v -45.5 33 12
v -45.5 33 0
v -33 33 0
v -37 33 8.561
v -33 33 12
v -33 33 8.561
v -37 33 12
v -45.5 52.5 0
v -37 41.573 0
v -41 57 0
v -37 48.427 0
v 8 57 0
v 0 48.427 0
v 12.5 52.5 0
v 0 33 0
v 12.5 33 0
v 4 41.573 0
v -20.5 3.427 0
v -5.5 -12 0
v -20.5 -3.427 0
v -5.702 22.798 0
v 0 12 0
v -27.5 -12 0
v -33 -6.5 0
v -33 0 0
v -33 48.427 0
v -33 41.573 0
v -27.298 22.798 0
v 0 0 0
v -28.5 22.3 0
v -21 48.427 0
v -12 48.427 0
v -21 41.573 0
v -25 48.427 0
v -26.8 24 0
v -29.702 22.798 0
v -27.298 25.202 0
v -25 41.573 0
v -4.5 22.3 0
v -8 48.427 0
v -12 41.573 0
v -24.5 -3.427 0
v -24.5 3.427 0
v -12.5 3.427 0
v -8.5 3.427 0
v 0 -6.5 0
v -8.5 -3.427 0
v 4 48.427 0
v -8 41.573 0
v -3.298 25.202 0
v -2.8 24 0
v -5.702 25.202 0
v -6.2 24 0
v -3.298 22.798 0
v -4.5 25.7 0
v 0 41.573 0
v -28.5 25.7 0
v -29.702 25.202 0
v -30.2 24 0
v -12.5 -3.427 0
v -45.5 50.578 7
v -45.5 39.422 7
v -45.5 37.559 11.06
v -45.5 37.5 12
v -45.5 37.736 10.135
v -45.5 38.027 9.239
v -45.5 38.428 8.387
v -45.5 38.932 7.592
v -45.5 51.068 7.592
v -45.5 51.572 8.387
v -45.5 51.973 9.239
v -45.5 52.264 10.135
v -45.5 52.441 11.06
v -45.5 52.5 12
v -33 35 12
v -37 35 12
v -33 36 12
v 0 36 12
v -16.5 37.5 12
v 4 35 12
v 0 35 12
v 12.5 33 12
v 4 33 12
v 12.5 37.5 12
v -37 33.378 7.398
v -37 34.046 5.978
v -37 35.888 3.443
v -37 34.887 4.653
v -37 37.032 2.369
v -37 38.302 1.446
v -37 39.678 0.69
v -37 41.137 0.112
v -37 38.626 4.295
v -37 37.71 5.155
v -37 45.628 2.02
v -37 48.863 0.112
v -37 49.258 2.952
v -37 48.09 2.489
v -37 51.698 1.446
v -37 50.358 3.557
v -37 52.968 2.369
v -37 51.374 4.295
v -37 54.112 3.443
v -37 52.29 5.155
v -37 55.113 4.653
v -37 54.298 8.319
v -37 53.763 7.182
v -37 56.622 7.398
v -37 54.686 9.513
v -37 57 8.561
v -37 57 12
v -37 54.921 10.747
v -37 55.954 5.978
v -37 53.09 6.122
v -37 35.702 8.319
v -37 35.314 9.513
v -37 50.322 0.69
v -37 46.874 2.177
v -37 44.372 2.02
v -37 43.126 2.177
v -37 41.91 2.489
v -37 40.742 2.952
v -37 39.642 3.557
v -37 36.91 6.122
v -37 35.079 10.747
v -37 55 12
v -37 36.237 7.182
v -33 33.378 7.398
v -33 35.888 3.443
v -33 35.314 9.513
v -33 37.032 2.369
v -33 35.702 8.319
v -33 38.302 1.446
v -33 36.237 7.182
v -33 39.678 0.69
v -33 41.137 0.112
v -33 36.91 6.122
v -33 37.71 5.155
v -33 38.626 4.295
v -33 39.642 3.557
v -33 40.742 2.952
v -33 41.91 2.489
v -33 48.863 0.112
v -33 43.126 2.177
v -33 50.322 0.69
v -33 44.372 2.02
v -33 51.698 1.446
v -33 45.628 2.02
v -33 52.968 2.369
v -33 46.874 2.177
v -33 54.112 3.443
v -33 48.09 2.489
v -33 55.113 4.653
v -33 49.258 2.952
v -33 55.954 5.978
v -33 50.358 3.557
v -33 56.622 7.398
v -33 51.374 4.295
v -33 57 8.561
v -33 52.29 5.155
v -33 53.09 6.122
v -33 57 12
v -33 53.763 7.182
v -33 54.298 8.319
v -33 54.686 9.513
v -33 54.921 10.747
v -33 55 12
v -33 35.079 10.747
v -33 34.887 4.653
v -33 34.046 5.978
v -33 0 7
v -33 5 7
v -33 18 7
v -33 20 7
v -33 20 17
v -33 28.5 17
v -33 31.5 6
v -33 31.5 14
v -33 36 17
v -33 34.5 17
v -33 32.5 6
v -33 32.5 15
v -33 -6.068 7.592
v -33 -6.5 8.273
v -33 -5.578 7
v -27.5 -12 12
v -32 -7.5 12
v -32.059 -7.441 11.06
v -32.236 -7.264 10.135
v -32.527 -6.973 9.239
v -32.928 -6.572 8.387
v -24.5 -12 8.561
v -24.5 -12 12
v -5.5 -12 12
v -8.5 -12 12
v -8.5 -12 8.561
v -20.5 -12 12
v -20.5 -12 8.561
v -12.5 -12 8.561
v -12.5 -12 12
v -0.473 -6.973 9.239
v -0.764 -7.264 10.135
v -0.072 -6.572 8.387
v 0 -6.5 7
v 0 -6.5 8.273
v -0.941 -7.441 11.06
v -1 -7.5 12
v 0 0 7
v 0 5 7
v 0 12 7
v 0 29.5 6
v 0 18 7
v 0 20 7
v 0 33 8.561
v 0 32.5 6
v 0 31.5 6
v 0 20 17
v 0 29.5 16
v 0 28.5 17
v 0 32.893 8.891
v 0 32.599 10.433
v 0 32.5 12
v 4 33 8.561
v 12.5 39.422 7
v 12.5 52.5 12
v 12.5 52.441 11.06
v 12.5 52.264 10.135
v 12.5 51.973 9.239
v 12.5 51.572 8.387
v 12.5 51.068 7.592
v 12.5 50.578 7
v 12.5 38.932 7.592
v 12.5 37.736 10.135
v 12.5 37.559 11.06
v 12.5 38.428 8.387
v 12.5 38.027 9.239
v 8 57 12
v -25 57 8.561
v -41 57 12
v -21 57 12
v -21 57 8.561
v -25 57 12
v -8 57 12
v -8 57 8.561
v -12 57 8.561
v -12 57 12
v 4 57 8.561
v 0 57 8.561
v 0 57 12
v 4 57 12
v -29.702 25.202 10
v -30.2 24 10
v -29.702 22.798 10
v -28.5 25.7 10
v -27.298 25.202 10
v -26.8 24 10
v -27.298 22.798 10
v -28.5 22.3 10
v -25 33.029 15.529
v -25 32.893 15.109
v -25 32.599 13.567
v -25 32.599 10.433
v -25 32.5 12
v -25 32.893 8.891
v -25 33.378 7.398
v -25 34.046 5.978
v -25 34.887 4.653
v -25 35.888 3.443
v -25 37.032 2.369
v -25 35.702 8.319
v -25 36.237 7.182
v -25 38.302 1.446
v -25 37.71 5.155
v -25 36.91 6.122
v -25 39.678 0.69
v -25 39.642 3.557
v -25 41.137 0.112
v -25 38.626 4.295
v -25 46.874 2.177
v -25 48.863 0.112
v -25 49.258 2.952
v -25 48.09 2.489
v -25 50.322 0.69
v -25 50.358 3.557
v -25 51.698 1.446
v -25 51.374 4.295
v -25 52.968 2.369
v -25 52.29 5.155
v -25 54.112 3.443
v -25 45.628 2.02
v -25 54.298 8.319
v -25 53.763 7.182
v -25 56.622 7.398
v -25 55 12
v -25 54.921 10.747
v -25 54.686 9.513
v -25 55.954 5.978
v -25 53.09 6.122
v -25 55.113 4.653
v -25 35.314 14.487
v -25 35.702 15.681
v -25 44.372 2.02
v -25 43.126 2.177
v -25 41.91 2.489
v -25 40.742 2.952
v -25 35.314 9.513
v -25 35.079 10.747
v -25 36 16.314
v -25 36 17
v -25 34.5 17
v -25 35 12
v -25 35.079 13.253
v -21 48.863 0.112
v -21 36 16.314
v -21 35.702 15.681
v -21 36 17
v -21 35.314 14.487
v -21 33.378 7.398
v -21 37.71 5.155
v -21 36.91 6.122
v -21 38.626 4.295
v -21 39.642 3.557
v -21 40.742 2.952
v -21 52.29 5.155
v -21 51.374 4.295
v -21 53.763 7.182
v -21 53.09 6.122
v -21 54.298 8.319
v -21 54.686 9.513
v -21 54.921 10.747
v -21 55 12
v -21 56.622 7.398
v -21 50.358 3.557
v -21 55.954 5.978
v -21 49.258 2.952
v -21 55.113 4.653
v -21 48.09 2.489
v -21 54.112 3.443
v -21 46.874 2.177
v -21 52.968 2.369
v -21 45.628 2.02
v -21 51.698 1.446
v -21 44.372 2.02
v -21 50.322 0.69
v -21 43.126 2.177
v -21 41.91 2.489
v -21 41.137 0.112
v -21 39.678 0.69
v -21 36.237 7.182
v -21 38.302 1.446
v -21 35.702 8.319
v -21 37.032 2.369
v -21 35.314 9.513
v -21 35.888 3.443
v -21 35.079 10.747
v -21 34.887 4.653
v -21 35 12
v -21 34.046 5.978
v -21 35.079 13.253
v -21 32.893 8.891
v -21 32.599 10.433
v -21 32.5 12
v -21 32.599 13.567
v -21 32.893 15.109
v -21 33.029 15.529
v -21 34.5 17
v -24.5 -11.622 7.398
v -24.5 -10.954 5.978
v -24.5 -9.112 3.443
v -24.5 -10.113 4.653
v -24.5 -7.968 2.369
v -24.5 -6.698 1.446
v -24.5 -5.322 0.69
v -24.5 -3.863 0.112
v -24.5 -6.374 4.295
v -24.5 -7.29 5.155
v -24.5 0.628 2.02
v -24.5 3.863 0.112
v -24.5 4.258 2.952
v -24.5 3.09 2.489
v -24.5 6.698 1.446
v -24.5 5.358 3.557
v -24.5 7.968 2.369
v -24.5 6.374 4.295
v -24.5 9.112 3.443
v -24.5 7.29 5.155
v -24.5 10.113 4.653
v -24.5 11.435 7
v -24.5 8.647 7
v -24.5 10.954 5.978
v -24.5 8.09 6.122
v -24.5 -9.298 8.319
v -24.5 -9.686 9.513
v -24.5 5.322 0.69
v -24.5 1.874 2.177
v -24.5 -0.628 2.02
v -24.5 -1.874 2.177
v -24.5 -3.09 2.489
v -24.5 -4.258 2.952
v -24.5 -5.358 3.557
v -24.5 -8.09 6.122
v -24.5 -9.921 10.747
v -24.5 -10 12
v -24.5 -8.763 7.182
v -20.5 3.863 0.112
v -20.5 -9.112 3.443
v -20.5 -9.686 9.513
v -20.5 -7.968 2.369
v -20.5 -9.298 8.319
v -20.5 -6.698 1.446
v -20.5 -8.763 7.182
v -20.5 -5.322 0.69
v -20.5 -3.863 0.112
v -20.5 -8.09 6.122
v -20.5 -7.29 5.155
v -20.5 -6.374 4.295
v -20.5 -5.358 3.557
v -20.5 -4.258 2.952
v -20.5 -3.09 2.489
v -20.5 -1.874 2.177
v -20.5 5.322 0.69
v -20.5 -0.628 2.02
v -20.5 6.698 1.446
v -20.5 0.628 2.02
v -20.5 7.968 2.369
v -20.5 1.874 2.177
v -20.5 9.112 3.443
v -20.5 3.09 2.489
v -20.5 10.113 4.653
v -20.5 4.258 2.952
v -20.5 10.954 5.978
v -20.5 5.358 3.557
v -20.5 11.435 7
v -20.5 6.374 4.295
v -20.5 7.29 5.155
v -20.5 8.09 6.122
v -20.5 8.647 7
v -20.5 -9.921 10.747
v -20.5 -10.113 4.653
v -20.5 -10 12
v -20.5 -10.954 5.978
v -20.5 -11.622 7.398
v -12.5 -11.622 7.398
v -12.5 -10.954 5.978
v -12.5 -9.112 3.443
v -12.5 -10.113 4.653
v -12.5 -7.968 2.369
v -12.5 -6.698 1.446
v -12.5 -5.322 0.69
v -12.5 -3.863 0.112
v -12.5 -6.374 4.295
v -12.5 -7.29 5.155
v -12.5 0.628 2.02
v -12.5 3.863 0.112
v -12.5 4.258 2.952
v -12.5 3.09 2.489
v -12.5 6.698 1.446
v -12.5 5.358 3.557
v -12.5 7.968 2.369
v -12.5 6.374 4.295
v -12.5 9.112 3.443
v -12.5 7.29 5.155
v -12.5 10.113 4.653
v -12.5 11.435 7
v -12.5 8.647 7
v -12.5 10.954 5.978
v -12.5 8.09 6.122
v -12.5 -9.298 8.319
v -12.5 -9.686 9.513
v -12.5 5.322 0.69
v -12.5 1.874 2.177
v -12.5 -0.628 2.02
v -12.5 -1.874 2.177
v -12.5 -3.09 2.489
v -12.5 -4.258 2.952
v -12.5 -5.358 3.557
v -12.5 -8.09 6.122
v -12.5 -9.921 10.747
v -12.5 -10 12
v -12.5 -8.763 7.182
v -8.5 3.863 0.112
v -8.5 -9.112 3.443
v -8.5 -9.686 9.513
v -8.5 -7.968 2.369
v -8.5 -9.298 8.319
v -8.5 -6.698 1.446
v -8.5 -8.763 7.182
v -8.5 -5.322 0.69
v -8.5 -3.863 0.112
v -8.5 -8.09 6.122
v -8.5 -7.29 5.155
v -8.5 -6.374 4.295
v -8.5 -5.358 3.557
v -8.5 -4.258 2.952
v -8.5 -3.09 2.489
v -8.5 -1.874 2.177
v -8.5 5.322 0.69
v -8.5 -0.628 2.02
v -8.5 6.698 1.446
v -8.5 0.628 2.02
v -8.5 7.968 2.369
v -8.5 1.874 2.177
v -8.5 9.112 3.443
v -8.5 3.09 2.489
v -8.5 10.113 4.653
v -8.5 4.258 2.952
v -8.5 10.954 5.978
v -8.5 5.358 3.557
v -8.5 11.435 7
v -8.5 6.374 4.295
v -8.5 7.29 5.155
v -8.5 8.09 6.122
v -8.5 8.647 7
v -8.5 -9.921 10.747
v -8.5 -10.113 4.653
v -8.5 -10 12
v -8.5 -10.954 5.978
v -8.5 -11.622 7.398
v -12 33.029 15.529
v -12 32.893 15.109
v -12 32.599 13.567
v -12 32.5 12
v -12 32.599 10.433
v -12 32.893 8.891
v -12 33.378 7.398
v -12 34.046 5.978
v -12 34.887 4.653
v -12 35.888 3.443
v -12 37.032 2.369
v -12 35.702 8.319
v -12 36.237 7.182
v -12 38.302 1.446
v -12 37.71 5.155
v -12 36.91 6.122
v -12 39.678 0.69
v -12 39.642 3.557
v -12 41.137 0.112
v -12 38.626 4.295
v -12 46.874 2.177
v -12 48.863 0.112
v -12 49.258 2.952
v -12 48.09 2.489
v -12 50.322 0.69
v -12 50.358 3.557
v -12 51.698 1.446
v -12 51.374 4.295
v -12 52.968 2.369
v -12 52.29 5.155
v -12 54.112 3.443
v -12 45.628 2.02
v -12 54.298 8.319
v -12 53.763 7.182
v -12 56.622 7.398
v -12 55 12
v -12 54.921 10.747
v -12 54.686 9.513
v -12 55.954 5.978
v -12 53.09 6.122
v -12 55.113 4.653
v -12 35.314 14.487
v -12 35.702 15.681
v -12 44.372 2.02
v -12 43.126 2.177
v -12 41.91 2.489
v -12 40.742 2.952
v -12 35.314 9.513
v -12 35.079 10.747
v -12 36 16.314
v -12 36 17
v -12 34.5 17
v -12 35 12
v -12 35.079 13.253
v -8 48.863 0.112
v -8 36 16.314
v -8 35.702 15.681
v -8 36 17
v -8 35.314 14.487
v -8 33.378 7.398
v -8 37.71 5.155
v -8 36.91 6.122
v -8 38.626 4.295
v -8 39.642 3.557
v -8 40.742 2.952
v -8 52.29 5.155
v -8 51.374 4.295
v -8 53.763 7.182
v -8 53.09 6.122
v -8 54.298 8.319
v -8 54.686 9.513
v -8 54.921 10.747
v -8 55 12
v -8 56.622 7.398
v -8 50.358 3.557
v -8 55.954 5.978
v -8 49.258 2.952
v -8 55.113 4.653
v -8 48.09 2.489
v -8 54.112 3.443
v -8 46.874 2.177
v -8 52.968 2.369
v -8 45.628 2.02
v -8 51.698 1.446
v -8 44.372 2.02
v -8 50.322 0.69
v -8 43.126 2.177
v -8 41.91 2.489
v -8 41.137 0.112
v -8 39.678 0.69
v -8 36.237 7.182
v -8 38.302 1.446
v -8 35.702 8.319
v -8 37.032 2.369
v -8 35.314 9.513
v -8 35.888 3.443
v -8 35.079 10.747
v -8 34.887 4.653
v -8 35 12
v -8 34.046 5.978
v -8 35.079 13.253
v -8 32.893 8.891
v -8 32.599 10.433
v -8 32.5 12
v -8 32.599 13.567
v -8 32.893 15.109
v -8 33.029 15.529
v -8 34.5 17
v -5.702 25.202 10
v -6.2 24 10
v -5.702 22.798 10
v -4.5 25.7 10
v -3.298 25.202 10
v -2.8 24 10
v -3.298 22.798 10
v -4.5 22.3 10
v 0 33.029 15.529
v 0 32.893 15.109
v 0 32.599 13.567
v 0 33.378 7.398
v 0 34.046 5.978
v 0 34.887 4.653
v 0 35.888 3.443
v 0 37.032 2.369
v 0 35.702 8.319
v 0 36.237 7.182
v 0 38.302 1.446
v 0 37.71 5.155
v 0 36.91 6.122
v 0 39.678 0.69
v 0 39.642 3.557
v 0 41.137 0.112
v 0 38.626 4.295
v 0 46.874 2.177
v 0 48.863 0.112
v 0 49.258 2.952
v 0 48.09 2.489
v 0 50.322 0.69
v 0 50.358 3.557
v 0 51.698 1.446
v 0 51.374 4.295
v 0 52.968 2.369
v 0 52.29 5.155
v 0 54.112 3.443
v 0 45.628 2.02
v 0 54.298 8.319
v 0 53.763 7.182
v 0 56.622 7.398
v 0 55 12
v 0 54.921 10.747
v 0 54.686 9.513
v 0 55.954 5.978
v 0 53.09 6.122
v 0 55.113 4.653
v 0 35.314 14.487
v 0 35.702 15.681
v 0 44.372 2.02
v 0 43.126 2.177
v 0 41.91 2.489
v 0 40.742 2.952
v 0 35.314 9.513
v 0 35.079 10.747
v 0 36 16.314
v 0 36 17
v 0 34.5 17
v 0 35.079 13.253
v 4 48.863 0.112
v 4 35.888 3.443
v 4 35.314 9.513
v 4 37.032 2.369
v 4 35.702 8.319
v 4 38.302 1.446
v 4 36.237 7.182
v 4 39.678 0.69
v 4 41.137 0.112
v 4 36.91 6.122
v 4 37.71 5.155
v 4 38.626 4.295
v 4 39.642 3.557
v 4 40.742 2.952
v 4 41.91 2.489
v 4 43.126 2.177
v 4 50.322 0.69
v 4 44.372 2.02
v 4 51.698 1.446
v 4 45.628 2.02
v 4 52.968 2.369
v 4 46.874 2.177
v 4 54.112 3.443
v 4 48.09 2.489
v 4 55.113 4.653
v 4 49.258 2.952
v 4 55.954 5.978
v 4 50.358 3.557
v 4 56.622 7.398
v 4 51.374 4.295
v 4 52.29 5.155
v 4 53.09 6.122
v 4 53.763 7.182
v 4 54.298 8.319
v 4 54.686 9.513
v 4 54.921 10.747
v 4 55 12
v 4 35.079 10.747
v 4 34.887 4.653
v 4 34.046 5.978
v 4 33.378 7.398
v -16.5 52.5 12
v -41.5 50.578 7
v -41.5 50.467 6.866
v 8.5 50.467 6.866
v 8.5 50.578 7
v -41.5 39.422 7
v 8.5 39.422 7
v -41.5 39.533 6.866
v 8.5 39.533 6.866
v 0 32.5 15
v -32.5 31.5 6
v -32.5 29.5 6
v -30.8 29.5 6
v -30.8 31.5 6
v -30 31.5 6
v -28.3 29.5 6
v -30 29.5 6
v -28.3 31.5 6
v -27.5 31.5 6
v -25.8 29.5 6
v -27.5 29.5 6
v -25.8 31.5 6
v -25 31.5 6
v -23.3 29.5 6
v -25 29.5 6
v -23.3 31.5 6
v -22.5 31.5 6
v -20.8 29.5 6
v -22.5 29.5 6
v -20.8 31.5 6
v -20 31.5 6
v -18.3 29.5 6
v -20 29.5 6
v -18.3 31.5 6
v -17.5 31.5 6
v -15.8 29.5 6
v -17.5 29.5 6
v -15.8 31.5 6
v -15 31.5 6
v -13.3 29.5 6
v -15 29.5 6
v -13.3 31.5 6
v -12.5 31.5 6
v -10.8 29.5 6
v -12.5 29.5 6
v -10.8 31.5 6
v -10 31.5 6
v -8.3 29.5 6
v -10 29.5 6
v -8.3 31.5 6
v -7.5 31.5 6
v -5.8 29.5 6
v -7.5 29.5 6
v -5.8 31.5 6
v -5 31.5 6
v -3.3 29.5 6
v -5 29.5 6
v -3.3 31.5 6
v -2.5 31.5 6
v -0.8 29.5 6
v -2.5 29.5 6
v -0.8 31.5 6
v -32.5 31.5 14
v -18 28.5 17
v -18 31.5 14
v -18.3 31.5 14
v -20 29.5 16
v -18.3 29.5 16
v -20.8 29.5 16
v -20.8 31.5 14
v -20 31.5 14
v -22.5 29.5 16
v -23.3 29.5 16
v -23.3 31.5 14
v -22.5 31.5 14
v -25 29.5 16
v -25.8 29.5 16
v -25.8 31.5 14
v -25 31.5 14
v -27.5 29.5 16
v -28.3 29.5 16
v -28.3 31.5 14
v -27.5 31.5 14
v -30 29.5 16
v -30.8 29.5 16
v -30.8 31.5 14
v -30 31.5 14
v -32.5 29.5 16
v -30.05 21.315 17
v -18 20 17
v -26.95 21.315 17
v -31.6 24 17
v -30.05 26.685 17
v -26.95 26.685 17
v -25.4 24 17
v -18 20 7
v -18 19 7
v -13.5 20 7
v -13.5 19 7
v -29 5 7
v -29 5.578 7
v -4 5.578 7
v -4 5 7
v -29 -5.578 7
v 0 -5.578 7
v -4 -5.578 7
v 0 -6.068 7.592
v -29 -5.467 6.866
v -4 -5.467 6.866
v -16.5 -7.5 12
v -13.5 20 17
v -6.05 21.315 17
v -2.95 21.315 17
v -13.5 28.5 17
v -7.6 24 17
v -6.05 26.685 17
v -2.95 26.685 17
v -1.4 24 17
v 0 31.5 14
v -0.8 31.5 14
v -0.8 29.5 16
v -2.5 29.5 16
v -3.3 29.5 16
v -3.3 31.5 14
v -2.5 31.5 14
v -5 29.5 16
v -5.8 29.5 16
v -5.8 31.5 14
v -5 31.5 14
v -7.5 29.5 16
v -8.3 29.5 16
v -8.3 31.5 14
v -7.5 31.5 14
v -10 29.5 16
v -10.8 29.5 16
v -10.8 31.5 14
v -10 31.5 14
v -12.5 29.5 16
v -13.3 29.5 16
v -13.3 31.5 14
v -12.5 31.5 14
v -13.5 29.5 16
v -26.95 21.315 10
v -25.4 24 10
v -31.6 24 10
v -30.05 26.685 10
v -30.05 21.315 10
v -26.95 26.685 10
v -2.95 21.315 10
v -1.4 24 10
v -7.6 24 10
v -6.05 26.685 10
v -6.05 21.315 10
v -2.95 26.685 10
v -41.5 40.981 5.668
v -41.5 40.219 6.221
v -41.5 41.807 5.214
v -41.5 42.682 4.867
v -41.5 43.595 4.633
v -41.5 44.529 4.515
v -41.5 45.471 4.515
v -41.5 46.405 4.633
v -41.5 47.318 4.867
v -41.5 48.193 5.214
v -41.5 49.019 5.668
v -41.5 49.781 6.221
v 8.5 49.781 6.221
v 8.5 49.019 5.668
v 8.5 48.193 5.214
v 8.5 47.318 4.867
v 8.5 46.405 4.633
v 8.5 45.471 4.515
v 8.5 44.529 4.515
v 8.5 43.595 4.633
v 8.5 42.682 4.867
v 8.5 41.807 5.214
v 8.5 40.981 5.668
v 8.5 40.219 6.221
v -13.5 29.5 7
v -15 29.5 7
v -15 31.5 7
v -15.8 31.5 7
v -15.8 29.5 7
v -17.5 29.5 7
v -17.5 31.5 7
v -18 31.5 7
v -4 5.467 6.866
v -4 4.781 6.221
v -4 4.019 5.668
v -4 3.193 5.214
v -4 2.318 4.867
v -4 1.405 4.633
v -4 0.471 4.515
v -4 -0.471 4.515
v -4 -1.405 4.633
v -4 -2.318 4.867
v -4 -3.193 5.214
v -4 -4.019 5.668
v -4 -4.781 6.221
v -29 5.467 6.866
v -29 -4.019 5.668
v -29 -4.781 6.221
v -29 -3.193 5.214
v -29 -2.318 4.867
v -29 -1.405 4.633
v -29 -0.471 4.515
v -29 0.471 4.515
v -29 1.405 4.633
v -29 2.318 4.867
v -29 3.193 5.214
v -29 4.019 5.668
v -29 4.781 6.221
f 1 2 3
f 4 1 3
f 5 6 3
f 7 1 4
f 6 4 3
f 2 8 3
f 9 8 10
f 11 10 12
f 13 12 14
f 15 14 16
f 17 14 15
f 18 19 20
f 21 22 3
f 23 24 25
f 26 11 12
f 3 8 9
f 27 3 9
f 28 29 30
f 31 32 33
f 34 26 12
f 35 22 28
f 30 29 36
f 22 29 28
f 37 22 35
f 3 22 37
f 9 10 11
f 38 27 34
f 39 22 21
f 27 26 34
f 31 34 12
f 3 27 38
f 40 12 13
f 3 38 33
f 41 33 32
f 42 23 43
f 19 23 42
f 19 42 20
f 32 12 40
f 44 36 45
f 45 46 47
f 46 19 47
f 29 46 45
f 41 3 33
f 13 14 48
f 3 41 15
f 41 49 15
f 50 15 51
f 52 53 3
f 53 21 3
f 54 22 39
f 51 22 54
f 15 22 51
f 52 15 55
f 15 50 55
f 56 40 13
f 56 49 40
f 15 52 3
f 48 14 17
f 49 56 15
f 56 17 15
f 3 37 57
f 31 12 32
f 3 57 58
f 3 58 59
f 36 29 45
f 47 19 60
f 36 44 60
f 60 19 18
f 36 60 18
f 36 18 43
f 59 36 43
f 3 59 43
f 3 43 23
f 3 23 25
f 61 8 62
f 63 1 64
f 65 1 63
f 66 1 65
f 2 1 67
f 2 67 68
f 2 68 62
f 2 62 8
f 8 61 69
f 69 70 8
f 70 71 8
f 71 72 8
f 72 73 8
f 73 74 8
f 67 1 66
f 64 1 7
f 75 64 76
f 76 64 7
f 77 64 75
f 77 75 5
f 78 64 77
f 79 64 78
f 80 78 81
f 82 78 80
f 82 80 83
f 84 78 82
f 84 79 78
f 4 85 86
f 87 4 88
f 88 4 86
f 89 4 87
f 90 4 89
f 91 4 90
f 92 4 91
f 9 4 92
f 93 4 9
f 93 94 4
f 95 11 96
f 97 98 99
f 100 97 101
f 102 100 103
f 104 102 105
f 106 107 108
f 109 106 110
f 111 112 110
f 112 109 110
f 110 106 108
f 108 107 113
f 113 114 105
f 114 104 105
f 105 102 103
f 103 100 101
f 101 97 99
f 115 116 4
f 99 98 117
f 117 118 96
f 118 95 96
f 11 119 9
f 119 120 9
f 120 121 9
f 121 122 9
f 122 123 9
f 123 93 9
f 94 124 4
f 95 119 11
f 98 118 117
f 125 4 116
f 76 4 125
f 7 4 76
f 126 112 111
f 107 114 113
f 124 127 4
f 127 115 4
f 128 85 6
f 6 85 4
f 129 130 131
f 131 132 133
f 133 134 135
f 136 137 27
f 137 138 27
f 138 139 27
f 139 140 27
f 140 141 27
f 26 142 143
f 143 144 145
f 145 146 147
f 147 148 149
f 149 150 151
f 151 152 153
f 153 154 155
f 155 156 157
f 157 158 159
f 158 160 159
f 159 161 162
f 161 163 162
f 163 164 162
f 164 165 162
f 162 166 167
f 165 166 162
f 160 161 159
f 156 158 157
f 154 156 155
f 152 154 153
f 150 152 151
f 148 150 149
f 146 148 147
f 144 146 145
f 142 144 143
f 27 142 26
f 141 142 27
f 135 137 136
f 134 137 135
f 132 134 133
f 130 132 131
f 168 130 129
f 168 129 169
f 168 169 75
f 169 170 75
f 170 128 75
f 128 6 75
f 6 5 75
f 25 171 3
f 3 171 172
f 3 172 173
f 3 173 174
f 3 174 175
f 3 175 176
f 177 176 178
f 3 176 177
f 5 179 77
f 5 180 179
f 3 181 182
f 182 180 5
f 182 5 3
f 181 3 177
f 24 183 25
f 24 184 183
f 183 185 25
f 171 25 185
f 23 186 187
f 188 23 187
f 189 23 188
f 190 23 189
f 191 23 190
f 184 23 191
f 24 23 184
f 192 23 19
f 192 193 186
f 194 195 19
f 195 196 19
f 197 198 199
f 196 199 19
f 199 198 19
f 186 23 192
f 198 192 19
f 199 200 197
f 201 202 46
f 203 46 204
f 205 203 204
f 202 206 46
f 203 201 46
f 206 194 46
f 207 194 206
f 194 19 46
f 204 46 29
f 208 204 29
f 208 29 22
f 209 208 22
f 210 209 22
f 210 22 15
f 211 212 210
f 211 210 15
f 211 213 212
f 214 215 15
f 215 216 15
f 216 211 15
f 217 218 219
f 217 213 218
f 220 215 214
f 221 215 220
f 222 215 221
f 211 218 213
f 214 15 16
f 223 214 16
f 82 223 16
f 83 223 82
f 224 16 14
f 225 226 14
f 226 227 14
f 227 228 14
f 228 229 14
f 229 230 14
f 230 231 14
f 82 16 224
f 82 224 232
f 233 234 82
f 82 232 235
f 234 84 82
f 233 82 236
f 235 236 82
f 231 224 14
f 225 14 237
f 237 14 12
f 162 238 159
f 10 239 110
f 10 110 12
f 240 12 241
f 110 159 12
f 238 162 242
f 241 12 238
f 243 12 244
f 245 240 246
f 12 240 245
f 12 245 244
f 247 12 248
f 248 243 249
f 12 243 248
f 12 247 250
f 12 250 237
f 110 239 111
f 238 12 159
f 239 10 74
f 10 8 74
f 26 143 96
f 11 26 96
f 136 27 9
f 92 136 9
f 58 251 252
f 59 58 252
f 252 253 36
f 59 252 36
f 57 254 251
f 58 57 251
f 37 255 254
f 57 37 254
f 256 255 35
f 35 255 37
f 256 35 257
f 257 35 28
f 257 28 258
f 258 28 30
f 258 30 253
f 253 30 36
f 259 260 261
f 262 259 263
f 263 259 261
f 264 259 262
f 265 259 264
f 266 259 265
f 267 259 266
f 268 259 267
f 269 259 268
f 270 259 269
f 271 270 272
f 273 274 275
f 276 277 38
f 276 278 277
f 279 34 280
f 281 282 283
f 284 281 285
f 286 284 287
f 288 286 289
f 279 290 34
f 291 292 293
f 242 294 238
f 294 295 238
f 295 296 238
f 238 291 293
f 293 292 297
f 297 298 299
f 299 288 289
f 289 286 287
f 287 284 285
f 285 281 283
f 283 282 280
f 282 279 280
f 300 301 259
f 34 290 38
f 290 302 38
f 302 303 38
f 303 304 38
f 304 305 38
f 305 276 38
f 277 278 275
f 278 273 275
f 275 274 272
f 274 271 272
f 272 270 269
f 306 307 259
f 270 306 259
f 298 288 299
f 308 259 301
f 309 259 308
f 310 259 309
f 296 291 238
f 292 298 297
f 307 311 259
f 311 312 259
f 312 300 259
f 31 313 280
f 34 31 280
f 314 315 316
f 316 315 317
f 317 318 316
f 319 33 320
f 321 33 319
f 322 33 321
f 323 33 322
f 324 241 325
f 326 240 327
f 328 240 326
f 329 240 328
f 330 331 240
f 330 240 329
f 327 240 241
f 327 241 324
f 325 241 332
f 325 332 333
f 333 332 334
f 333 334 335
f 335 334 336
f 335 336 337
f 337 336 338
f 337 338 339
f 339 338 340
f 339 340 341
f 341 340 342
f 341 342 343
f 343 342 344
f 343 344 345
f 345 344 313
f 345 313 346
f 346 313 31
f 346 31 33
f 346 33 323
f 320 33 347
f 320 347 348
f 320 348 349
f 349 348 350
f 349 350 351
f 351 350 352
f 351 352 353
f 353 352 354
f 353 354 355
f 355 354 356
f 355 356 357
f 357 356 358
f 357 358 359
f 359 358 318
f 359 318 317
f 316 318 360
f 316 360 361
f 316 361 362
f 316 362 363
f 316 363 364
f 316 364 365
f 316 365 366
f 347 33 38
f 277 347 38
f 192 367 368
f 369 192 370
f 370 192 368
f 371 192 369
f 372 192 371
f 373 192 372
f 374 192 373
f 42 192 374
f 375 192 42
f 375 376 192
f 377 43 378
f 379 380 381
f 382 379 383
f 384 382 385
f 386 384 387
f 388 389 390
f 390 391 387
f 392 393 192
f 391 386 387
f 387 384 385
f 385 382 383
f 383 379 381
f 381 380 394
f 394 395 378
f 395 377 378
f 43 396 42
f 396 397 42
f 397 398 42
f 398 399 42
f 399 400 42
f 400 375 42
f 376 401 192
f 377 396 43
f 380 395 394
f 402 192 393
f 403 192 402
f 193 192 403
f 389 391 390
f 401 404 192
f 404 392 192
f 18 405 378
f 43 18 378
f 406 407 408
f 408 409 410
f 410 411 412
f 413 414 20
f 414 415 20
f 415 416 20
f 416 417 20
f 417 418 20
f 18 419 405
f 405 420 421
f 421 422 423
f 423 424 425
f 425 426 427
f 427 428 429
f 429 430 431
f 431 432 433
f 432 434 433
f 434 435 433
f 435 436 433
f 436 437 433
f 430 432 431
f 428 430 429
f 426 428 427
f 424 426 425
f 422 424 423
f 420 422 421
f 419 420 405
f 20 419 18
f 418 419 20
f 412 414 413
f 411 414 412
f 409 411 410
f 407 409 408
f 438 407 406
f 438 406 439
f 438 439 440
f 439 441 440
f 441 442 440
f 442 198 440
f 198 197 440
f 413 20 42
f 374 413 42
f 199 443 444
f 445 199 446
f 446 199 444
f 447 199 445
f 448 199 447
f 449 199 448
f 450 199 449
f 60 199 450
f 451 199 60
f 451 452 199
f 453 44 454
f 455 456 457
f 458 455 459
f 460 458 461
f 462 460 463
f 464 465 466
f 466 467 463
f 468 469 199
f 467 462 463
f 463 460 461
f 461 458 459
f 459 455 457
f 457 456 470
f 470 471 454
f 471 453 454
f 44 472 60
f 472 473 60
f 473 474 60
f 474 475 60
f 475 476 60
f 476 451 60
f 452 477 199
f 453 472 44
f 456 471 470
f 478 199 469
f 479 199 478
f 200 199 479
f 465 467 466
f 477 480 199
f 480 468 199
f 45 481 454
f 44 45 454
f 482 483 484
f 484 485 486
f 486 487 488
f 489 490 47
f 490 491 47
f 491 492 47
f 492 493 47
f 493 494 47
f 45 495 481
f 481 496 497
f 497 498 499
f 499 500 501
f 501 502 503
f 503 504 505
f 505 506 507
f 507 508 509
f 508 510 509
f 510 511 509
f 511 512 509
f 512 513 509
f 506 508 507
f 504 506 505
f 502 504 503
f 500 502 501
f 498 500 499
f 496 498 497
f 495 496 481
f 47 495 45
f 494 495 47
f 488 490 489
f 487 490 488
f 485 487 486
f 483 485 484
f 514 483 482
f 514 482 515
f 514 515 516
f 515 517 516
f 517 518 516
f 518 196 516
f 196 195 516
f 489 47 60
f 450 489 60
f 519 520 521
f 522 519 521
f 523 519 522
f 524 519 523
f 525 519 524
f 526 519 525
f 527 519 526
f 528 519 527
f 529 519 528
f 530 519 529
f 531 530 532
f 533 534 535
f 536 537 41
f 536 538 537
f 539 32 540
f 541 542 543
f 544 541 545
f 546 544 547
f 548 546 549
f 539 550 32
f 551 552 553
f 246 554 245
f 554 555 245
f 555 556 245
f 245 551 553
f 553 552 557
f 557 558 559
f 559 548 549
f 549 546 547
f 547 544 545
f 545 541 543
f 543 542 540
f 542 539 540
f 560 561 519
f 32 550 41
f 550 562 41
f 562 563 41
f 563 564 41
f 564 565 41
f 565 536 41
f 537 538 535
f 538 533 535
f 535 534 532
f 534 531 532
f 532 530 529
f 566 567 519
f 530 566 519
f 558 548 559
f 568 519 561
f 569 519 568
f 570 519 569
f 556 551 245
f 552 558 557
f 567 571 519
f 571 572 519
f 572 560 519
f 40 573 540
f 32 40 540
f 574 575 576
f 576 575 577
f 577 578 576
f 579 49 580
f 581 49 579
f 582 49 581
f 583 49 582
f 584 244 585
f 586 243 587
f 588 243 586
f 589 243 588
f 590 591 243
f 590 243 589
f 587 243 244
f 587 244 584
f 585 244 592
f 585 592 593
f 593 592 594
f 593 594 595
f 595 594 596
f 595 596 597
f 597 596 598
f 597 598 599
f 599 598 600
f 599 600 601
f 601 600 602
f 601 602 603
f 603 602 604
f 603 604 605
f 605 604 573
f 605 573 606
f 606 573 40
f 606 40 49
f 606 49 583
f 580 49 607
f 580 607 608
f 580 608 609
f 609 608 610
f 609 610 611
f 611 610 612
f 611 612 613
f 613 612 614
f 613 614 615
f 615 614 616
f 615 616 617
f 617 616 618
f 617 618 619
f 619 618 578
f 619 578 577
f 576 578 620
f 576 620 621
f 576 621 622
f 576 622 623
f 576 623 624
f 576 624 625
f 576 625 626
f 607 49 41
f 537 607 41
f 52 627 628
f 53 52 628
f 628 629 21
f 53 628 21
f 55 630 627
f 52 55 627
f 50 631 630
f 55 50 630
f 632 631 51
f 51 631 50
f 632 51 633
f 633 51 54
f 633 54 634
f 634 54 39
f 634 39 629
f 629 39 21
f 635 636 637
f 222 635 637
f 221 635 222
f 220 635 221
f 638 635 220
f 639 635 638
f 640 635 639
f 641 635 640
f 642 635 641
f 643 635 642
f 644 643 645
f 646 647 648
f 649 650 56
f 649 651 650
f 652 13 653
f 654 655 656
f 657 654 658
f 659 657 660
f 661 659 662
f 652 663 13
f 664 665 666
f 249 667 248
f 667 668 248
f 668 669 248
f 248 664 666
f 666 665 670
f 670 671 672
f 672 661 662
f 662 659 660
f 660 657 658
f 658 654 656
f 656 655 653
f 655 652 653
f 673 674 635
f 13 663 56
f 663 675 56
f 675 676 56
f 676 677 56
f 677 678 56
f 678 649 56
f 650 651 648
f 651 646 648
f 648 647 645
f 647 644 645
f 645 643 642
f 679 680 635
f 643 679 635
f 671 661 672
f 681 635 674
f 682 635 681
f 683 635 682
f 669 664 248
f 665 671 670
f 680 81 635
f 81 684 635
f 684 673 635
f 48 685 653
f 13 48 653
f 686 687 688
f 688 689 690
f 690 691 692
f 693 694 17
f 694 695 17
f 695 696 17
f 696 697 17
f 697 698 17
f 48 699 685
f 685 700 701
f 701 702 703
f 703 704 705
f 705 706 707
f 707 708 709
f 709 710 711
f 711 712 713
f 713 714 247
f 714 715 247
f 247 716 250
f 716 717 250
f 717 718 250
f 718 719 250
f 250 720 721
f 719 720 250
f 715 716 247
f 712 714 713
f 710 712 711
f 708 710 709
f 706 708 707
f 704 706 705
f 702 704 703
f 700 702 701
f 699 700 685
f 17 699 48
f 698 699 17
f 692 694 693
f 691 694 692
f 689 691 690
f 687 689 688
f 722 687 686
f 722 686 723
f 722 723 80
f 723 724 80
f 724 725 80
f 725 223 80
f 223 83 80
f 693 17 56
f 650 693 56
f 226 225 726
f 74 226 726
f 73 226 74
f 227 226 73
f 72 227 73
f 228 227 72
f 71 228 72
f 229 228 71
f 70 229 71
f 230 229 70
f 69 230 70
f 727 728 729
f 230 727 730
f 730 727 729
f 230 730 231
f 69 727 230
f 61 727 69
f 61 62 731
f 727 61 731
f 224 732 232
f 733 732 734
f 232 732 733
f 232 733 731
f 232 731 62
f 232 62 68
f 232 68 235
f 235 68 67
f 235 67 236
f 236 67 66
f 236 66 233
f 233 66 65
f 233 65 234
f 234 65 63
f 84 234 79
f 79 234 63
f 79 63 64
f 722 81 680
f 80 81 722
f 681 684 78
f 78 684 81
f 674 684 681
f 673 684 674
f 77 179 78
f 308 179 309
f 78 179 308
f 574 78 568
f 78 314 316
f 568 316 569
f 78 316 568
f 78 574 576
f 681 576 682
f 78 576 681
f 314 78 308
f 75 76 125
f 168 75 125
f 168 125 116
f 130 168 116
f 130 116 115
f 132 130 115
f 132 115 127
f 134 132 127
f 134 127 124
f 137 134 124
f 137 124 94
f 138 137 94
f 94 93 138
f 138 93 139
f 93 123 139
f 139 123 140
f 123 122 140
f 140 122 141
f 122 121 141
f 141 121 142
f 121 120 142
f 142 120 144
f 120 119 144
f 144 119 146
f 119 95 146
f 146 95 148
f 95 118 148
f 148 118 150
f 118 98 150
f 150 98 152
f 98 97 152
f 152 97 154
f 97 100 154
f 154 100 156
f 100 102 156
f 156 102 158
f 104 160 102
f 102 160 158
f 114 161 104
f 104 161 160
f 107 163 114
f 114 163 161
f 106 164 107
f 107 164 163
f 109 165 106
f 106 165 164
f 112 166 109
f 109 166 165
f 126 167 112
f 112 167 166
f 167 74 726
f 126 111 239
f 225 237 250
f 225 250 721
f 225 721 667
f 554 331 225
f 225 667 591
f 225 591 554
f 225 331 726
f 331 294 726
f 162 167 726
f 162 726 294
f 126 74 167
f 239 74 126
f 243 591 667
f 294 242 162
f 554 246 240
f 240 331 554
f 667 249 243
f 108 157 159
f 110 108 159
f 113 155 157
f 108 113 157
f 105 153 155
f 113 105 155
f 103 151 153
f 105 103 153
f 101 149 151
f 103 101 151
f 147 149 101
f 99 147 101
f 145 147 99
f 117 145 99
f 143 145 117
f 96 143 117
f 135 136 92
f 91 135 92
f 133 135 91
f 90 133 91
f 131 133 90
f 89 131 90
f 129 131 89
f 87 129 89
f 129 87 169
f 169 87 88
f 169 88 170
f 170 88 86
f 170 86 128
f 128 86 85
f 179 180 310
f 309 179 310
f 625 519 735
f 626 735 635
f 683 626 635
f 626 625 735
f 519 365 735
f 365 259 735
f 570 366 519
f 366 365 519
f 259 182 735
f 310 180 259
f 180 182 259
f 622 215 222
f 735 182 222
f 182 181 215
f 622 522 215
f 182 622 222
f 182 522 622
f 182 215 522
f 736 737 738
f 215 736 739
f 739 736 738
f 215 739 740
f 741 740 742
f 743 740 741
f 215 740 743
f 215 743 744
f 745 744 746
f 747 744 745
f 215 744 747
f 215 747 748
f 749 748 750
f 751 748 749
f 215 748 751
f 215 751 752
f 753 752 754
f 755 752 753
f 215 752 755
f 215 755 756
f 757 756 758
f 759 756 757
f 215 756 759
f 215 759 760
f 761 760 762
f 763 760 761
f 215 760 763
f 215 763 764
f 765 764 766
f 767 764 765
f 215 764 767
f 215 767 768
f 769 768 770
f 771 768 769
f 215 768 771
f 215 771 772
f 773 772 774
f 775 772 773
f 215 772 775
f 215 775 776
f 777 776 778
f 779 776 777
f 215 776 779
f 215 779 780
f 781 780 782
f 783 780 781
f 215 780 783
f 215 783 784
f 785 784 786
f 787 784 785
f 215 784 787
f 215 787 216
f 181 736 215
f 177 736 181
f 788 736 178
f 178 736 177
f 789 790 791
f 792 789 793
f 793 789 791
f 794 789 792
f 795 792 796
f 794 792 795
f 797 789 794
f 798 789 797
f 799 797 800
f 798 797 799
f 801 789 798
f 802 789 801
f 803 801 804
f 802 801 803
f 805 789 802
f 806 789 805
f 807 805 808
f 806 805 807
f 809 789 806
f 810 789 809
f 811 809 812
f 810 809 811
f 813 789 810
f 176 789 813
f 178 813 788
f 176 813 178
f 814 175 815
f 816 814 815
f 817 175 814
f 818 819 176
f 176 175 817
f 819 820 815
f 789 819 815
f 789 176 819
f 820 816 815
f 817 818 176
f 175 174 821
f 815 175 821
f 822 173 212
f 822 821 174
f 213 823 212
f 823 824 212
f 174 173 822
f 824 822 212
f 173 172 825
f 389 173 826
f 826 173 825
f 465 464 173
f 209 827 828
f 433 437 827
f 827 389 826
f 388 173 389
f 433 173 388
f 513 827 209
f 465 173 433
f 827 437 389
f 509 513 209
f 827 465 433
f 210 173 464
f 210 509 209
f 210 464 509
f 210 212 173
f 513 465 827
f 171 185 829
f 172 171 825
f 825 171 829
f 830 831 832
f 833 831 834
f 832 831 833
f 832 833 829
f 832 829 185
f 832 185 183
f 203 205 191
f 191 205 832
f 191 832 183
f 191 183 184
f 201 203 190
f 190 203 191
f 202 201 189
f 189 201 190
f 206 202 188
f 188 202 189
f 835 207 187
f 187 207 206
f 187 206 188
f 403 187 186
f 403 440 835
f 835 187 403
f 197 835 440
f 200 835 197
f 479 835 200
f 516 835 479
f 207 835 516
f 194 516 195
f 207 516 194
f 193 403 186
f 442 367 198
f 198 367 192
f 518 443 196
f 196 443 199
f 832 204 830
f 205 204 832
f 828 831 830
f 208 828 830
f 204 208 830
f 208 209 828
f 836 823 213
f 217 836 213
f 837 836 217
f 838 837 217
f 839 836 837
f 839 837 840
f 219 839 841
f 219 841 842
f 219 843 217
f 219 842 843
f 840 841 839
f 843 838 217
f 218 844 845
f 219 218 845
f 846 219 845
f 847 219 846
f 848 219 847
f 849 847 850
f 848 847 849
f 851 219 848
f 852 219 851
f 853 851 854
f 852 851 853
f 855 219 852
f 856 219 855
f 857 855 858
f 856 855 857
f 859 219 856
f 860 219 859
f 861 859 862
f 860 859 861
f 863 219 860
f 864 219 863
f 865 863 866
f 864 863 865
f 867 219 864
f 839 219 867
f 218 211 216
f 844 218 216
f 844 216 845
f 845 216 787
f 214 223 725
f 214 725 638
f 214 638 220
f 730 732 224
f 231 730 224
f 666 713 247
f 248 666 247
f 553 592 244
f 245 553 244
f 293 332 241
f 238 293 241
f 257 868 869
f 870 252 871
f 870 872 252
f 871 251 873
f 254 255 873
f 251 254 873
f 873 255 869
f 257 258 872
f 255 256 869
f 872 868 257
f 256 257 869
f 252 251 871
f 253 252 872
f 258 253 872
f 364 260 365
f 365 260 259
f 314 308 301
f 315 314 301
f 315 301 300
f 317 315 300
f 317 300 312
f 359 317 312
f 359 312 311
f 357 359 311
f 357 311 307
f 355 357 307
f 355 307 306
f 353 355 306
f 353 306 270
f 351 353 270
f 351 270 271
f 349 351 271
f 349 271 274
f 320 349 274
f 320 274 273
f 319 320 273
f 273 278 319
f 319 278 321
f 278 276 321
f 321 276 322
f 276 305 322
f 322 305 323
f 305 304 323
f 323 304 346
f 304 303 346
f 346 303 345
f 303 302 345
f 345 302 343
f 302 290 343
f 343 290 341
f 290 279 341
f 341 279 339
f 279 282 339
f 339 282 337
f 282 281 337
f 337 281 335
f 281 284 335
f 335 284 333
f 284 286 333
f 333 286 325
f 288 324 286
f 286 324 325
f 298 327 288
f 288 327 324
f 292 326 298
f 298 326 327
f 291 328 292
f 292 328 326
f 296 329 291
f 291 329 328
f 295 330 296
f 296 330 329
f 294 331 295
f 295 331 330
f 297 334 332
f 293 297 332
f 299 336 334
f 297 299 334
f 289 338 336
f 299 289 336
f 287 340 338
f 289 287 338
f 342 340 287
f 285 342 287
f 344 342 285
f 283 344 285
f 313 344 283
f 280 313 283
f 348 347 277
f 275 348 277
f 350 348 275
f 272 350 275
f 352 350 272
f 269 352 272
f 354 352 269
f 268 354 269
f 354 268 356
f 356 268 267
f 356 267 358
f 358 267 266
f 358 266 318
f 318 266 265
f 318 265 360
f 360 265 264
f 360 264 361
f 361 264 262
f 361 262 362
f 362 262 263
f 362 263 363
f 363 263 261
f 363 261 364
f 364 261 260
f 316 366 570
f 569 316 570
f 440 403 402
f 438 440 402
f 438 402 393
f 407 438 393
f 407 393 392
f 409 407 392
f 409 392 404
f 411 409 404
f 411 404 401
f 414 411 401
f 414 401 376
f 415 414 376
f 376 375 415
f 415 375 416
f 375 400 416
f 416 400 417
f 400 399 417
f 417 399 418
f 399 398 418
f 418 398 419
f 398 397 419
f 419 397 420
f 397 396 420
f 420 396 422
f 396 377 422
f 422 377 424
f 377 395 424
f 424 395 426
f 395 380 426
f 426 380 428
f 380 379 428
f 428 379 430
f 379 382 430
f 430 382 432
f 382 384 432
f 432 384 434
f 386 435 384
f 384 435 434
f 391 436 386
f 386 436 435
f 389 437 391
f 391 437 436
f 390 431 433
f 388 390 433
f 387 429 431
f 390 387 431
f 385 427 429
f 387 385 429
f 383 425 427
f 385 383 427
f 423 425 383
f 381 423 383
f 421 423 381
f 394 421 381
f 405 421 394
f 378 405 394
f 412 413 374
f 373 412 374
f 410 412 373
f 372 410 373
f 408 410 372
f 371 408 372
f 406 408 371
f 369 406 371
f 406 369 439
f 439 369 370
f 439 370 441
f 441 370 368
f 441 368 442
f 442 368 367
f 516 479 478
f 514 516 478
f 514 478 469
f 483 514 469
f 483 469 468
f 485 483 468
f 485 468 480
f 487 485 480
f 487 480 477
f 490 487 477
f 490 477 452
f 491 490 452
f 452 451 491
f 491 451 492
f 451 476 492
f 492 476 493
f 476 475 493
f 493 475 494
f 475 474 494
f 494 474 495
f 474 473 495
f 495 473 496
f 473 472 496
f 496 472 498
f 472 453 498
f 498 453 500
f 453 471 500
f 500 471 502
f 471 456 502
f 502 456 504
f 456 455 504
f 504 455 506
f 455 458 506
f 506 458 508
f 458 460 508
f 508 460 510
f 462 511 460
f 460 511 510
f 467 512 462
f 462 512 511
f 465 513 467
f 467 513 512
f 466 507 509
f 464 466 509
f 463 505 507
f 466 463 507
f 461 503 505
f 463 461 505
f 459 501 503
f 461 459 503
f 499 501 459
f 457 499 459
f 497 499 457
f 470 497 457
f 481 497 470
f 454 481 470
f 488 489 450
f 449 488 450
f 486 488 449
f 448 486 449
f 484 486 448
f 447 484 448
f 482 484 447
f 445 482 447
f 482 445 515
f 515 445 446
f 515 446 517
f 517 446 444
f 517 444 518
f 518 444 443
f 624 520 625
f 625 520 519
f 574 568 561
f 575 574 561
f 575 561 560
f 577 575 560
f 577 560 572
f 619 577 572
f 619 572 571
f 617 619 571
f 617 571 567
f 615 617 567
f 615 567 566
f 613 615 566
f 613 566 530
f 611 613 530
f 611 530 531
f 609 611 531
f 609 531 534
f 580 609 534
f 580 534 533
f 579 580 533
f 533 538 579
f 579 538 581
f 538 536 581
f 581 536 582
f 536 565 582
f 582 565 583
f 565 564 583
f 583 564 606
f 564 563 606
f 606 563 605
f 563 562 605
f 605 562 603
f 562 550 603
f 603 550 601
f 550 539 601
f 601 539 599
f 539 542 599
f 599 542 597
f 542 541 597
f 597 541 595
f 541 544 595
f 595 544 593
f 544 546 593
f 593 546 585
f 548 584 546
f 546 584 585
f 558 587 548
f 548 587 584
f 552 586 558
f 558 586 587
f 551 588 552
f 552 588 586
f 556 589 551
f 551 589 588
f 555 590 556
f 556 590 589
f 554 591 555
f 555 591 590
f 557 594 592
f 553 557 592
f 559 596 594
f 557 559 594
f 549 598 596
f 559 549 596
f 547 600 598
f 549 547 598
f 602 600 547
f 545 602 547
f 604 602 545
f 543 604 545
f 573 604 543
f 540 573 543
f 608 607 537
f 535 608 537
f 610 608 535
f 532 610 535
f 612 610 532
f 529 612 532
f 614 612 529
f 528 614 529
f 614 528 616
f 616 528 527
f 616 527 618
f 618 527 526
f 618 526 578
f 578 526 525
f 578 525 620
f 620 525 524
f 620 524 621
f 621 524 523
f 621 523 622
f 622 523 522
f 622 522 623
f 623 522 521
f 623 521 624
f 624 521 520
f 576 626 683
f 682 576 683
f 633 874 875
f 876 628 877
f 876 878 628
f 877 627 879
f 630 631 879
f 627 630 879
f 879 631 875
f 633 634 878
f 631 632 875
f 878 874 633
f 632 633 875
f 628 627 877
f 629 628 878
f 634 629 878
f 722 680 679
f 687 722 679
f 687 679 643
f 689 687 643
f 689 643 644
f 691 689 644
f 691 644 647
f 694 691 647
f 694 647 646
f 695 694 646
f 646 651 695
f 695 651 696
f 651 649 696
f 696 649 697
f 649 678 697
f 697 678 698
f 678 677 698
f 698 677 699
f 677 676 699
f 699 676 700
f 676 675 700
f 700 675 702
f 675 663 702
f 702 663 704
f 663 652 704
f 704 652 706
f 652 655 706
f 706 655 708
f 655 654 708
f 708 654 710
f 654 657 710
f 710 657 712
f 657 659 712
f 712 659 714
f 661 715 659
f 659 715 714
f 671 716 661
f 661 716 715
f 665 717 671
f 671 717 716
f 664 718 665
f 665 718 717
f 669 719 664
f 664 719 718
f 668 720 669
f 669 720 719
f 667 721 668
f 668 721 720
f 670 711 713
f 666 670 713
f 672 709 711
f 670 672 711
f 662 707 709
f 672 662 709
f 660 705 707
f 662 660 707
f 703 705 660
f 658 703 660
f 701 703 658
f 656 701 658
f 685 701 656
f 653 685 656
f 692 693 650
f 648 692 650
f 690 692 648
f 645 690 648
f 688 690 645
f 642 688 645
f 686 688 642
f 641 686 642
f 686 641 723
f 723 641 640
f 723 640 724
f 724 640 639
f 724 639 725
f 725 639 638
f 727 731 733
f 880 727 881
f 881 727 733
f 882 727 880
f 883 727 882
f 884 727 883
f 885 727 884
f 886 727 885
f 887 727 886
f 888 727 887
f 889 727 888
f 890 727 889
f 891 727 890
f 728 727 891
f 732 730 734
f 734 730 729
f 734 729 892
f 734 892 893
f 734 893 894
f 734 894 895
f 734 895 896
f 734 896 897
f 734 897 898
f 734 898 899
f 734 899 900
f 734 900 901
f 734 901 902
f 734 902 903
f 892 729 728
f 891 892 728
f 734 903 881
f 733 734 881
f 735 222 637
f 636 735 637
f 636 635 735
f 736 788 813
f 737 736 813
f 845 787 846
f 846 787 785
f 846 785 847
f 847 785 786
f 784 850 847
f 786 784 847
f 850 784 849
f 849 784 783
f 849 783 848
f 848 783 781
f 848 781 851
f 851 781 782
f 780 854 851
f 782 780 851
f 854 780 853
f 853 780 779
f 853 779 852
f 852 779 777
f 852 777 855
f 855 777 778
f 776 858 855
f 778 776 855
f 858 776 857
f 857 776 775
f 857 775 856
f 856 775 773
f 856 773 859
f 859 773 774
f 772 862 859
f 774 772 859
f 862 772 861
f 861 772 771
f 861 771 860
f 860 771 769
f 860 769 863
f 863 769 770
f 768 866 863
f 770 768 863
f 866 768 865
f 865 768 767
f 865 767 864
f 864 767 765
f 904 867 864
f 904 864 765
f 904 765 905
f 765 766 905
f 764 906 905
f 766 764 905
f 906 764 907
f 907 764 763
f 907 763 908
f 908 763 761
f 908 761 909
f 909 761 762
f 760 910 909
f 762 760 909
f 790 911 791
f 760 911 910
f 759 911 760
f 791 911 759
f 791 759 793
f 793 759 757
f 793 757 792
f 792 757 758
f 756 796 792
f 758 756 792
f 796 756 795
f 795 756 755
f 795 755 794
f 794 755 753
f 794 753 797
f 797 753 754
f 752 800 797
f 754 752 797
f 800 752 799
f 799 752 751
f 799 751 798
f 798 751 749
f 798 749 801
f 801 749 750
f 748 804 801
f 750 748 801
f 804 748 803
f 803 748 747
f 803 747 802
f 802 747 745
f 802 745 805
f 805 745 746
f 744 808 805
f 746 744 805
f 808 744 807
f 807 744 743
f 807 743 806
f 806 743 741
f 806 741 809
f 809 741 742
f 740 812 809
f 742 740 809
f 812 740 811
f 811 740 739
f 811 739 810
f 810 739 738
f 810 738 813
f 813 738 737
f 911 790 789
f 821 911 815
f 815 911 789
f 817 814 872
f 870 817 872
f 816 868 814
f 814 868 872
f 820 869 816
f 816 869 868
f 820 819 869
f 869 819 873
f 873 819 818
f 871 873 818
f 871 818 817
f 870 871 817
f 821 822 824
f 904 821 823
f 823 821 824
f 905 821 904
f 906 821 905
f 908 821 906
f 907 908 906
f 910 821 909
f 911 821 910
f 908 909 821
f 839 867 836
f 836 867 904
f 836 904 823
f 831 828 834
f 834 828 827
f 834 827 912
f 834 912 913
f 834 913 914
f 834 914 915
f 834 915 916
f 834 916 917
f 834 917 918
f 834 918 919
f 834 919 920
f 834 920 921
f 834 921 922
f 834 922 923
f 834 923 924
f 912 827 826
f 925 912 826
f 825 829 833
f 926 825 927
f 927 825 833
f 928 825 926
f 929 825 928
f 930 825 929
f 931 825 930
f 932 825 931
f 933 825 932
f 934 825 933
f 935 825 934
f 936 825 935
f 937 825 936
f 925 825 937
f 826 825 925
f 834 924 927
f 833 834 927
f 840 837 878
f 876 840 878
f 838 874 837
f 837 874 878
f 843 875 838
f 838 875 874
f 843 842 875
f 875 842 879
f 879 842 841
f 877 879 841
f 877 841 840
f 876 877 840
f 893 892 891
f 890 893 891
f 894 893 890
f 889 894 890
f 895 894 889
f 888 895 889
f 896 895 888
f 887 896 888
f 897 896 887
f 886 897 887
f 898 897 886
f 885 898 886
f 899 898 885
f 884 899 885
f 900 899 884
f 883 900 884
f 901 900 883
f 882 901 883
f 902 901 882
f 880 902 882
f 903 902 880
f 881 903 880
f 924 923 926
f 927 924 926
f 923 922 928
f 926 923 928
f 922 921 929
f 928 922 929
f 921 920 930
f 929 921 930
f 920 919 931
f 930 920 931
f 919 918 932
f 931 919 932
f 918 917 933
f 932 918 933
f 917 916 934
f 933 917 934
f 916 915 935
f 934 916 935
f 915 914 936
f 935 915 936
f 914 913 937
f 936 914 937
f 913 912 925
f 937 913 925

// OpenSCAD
// file: inc/bearing.scad
// PRUSA iteration3
// Bearing holders
// GNU GPL v3
// Josef Průša <iam@josefprusa.cz> and contributors
// http://www.reprap.org/wiki/Prusa_Mendel
// http://prusamendel.org

bearing_diameter = 15;

module horizontal_bearing_base(bearings=1){
 translate(v=[0,0,6]) cube(size = [24,8+bearings*25,12], center = true);	
}
module horizontal_bearing_holes(bearings=1){
 cutter_lenght = 10+bearings*25;
 one_holder_lenght = 8+25;
 holder_lenght = 8+bearings*25;
 
 // Main bearing cut
 difference(){
  translate(v=[0,0,12]) rotate(a=[90,0,0]) translate(v=[0,0,-cutter_lenght/2]) cylinder(h = cutter_lenght, r=bearing_diameter/2, $fn=50);
  // Bearing retainers
  translate(v=[0,1-holder_lenght/2,3]) cube(size = [24,6,8], center = true);
  translate(v=[0,-1+holder_lenght/2,3]) cube(size = [24,6,8], center = true);
 }
 
 // Ziptie cutouts
 ziptie_cut_ofset = 0;
 for ( i = [0 : bearings-1] ){
  // For easier positioning I move them by half of one 
  // bearing holder then add each bearign lenght and then center again
  translate(v=[0,-holder_lenght/2,0]) translate(v=[0,one_holder_lenght/2+i*25,0]) difference(){
   union(){
    translate(v=[0,2-6,12]) rotate(a=[90,0,0]) translate(v=[0,0,0]) cylinder(h = 4, r=12.5, $fn=50);
    translate(v=[0,2+6,12]) rotate(a=[90,0,0]) translate(v=[0,0,0]) cylinder(h = 4, r=12.5, $fn=50);
   }
   translate(v=[0,10,12]) rotate(a=[90,0,0]) translate(v=[0,0,0]) cylinder(h = 24, r=10, $fn=50);
  }
 }
 
}

module horizontal_bearing_test(){
 difference(){
  horizontal_bearing_base(1);
  horizontal_bearing_holes(1);
 }
 translate(v=[30,0,0]) difference(){
  horizontal_bearing_base(2);
  horizontal_bearing_holes(2);
 }
 translate(v=[60,0,0]) difference(){
  horizontal_bearing_base(3);
  horizontal_bearing_holes(3);
 }
}



thinwall = 2;
bearing_size = bearing_diameter + 2 * thinwall;

module vertical_bearing_base(){
 translate(v=[-2-bearing_size/4,0,30]) cube(size = [4+bearing_size/2,bearing_size,60], center = true);
 cylinder(h = 60, r=bearing_size/2, $fn = 60);
}

module vertical_bearing_holes(){
  translate(v=[0,0,-1]) cylinder(h = 62, r=bearing_diameter/2, $fn = 60);
  rotate(a=[0,0,-60]) translate(v=[10,0,31]) cube(size = [10,1,62], center = true);
}

difference(){
vertical_bearing_base();
vertical_bearing_holes();
}
// file: ../configuration.scad
x_rod_distance = 45;

// Select your belt type ******************************************************

//T2.5
belt_tooth_distance = 2.5;
belt_tooth_ratio = 0.5;

//T5 (strongly discouraged)
//belt_tooth_distance = 5;
//belt_tooth_ratio = 0.75;

//HTD3
//belt_tooth_distance = 3;
//belt_tooth_ratio = 0.75;

//MXL
//belt_tooth_distance = 2.032;
//belt_tooth_ratio = 0.64;

// Select your hot-end mount ******************************************************

// 0 = none; 1 = groove-mount (J-head/MakerGear etc.)
hotend_mount = 1;

hotend_groovemount_depth = 5;
hotend_groovemount_diameter = 11.05;
// main file
// PRUSA iteration3
// X carriage
// GNU GPL v3
// Josef Průša <iam@josefprusa.cz> and contributors
// http://www.reprap.org/wiki/Prusa_Mendel
// http://prusamendel.org

include <../configuration.scad>
use <inc/bearing.scad>

module x_carriage_base(){
 // Small bearing holder
 translate([-33/2,0,0]) rotate([0,0,90]) horizontal_bearing_base(1);
 // Long bearing holder
 translate([-33/2,x_rod_distance,0]) rotate([0,0,90]) horizontal_bearing_base(2);
 // Base plate
 translate([-33,-11.5,0]) cube([33,68,7]);
 // Belt holder base
 translate([-33,20,0]) cube([33,16,17]);
}

module x_carriage_beltcut(){
 // Cut in the middle for belt
 translate([-2.5-16.5+1,19,7]) cube([4.5,13,15]);
 // Cut clearing space for the belt
 translate([-38,5,7]) cube([40,13,15]);
 // Belt slit
 translate([-66,21.5+10,6]) cube([67,1,15]);
 // Smooth entrance
 translate([-66,21.5+10,14]) rotate([45,0,0]) cube([67,15,15]);
 // Teeth cuts
 for ( i = [0 : 23] ){
  translate([0-i*belt_tooth_distance,21.5+8,6]) cube([1.7,3,15]);
 }
}

module x_carriage_holes(){
 // Small bearing holder holes cutter
 translate([-33/2,0,0]) rotate([0,0,90]) horizontal_bearing_holes(1);
 // Long bearing holder holes cutter
 translate([-33/2,45,0]) rotate([0,0,90]) horizontal_bearing_holes(2);
  // Extruder mounting holes
  translate([-16.5+12,24,-1])cylinder(r=1.7, h=20, $fn=8);
  translate([-16.5+12,24,10])cylinder(r=3.1, h=20, $fn=6); 
  translate([-16.5-12,24,-1])cylinder(r=1.7, h=20, $fn=8);
  translate([-16.5-12,24,10])cylinder(r=3.1, h=20, $fn=6); 	
}

module x_carriage_fancy(){
 // Top right corner
 translate([13.5,-5,0]) translate([0,45+11.5,-1]) rotate([0,0,45]) translate([0,-15,0]) cube([30,30,20]);
 // Bottom right corner
 translate([0,5,0]) translate([0,-11.5,-1]) rotate([0,0,-45]) translate([0,-15,0]) cube([30,30,20]);
 // Bottom ĺeft corner
 translate([-33,5,0]) translate([0,-11.5,-1]) rotate([0,0,-135]) translate([0,-15,0]) cube([30,30,20]);
 // Top left corner
 translate([-33-13.5,-5,0]) translate([0,45+11.5,-1]) rotate([0,0,135]) translate([0,-15,0]) cube([30,30,20]);	
}

// Final part
module x_carriage(){
 difference(){
  x_carriage_base();
  x_carriage_beltcut();
  x_carriage_holes();
  x_carriage_fancy();
 }
}

x_carriage();
